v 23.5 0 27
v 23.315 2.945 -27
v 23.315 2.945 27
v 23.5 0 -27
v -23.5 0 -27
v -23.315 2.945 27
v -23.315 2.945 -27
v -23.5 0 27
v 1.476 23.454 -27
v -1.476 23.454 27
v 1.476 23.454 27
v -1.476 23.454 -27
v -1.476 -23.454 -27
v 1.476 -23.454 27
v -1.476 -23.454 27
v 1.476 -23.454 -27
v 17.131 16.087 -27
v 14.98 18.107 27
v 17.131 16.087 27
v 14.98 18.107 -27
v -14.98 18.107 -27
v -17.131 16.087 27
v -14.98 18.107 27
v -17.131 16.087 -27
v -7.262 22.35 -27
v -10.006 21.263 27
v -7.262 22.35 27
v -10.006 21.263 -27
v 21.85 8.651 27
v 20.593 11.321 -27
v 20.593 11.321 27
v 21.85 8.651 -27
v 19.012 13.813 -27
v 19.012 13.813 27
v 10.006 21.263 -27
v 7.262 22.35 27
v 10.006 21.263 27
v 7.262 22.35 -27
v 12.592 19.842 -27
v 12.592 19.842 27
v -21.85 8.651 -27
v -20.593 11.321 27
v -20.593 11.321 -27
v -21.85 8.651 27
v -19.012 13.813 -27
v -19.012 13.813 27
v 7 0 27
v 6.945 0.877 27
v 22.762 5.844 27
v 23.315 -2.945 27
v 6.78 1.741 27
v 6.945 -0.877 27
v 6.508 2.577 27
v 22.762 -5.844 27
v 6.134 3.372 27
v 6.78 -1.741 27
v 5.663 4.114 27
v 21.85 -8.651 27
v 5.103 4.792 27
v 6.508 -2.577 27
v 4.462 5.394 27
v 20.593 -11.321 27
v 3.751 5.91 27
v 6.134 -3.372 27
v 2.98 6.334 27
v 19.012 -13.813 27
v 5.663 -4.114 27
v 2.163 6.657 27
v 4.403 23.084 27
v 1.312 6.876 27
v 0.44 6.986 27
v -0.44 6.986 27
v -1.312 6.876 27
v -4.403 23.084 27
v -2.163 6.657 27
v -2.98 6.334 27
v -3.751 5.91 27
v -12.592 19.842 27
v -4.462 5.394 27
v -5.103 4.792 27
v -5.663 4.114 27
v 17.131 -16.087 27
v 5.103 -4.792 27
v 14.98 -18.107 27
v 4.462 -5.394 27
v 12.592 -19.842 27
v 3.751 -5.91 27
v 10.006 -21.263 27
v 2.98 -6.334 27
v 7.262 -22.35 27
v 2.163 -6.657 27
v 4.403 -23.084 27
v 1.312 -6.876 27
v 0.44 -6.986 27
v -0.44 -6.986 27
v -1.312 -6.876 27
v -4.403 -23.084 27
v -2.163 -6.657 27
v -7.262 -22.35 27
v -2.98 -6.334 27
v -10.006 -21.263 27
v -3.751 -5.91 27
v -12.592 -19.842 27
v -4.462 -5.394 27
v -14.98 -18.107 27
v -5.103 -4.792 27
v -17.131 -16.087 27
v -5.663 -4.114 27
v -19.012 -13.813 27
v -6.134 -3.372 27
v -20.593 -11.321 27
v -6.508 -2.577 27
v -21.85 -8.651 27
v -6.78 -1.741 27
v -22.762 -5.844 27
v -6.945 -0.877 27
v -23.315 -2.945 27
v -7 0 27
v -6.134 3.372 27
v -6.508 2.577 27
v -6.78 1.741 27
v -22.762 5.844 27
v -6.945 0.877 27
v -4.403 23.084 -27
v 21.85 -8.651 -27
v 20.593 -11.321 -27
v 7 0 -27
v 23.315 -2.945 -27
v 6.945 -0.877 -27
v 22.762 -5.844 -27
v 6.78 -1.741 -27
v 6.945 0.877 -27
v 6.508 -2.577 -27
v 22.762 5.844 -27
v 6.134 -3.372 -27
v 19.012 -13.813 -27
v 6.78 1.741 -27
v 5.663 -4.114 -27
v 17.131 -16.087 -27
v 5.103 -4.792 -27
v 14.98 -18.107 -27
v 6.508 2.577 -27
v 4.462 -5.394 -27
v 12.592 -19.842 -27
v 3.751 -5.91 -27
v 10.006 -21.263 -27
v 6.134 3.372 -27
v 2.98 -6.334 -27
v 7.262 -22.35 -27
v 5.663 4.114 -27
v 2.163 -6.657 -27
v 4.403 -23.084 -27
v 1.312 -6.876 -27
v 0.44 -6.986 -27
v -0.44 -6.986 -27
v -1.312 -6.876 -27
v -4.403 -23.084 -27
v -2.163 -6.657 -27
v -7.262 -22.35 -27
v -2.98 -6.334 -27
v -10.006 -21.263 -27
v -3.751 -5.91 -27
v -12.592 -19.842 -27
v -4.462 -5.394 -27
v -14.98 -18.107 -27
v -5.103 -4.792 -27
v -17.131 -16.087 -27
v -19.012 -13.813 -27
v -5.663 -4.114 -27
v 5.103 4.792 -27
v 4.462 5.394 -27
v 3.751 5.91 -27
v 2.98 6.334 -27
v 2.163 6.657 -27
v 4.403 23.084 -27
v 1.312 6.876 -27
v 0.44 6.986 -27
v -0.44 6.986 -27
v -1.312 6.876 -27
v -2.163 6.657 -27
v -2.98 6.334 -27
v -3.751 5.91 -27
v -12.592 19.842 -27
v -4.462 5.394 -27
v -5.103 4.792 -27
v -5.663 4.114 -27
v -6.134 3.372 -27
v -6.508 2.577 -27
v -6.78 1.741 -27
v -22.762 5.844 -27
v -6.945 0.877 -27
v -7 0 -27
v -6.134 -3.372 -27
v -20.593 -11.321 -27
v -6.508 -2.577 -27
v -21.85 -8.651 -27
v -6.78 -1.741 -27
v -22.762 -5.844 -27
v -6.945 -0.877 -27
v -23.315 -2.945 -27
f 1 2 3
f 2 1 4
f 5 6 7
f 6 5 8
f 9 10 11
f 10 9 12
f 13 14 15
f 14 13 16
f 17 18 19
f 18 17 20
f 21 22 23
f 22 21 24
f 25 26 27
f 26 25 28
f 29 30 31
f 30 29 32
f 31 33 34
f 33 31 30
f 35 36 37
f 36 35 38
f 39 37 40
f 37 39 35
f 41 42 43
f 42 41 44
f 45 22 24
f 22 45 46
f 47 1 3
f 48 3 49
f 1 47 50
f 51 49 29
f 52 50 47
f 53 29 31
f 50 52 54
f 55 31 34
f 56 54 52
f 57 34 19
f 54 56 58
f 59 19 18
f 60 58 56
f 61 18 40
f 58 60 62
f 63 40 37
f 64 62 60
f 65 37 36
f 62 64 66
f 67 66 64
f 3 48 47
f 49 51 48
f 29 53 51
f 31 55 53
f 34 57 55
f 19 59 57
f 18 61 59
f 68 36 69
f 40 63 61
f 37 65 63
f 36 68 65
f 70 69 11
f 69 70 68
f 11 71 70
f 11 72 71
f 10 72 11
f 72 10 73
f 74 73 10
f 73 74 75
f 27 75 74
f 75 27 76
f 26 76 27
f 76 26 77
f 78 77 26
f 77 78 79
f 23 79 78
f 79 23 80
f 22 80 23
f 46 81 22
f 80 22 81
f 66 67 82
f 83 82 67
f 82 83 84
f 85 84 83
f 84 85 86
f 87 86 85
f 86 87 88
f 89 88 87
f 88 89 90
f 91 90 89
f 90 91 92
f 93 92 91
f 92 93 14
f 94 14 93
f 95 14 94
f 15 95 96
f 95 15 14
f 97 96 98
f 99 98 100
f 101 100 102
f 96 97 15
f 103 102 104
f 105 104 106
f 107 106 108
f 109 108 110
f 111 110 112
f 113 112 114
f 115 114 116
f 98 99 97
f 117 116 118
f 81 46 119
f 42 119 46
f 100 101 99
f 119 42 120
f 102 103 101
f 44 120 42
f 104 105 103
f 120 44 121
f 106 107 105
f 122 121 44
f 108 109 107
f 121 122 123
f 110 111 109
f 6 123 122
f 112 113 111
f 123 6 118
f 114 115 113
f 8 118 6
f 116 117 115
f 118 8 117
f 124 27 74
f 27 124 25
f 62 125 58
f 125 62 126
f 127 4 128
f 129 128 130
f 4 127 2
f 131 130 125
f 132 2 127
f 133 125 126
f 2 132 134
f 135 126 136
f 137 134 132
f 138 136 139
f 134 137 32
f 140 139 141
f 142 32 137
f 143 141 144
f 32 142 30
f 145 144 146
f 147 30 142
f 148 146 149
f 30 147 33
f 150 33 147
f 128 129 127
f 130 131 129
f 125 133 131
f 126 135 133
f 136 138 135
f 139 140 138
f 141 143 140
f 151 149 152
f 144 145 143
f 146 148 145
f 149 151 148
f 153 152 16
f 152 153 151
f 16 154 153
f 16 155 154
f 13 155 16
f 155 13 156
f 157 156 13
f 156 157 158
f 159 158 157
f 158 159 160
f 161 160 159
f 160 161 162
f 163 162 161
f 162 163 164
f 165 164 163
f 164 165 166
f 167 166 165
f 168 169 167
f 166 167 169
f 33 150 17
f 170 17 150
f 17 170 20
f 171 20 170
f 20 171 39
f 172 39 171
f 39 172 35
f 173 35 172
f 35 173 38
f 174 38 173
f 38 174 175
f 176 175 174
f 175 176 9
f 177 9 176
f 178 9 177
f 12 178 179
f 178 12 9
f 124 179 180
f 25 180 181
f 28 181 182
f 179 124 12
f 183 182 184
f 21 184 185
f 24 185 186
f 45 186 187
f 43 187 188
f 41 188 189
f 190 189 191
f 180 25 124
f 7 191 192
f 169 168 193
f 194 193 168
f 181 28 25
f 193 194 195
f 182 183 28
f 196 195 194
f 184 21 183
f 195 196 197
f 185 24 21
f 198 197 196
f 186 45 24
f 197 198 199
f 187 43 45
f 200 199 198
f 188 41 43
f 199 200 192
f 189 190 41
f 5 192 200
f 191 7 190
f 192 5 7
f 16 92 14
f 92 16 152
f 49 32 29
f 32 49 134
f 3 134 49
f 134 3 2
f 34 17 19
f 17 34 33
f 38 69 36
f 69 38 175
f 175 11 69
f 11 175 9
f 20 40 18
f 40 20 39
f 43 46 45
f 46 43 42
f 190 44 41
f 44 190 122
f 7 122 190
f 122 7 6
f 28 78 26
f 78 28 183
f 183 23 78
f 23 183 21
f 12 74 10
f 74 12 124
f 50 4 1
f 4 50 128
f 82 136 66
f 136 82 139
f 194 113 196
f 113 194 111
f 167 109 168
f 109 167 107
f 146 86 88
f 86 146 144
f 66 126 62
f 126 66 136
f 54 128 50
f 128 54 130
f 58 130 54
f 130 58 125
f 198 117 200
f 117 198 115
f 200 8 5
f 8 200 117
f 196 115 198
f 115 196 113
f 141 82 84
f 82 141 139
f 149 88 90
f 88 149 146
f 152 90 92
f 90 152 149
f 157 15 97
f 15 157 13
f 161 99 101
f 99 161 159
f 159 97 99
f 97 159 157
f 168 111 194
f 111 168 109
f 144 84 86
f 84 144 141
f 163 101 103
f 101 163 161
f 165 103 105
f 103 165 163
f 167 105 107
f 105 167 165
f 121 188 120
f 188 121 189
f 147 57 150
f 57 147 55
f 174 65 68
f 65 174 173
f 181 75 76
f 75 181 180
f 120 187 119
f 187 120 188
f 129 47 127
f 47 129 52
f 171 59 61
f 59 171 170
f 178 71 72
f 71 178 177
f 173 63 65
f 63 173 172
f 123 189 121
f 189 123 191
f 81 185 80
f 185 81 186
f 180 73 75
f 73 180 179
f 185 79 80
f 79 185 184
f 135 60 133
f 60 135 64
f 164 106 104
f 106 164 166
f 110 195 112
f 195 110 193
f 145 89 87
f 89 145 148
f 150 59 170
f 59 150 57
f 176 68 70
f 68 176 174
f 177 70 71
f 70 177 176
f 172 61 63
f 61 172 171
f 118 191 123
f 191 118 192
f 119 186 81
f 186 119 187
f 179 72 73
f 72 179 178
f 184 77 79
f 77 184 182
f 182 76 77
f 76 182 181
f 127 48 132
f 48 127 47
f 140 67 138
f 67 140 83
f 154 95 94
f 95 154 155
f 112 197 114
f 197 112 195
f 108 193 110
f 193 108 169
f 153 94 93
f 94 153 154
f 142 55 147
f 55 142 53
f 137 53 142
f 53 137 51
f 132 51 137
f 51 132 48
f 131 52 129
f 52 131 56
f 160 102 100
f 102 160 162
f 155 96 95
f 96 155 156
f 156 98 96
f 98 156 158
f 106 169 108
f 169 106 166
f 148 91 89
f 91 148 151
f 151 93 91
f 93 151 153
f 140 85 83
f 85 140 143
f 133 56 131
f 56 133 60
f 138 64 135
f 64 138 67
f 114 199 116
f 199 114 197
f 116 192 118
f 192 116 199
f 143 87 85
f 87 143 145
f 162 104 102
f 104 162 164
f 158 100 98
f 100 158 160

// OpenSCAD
$fn = 50;


difference() {
	union() {
		translate(v = [0, 0, -27.0000000000]) {
			cylinder(h = 54, r = 23.5000000000);
		}
	}
	union() {
		translate(v = [0, 0, -100.0000000000]) {
			cylinder(h = 200, r = 7);
		}
	}
}
